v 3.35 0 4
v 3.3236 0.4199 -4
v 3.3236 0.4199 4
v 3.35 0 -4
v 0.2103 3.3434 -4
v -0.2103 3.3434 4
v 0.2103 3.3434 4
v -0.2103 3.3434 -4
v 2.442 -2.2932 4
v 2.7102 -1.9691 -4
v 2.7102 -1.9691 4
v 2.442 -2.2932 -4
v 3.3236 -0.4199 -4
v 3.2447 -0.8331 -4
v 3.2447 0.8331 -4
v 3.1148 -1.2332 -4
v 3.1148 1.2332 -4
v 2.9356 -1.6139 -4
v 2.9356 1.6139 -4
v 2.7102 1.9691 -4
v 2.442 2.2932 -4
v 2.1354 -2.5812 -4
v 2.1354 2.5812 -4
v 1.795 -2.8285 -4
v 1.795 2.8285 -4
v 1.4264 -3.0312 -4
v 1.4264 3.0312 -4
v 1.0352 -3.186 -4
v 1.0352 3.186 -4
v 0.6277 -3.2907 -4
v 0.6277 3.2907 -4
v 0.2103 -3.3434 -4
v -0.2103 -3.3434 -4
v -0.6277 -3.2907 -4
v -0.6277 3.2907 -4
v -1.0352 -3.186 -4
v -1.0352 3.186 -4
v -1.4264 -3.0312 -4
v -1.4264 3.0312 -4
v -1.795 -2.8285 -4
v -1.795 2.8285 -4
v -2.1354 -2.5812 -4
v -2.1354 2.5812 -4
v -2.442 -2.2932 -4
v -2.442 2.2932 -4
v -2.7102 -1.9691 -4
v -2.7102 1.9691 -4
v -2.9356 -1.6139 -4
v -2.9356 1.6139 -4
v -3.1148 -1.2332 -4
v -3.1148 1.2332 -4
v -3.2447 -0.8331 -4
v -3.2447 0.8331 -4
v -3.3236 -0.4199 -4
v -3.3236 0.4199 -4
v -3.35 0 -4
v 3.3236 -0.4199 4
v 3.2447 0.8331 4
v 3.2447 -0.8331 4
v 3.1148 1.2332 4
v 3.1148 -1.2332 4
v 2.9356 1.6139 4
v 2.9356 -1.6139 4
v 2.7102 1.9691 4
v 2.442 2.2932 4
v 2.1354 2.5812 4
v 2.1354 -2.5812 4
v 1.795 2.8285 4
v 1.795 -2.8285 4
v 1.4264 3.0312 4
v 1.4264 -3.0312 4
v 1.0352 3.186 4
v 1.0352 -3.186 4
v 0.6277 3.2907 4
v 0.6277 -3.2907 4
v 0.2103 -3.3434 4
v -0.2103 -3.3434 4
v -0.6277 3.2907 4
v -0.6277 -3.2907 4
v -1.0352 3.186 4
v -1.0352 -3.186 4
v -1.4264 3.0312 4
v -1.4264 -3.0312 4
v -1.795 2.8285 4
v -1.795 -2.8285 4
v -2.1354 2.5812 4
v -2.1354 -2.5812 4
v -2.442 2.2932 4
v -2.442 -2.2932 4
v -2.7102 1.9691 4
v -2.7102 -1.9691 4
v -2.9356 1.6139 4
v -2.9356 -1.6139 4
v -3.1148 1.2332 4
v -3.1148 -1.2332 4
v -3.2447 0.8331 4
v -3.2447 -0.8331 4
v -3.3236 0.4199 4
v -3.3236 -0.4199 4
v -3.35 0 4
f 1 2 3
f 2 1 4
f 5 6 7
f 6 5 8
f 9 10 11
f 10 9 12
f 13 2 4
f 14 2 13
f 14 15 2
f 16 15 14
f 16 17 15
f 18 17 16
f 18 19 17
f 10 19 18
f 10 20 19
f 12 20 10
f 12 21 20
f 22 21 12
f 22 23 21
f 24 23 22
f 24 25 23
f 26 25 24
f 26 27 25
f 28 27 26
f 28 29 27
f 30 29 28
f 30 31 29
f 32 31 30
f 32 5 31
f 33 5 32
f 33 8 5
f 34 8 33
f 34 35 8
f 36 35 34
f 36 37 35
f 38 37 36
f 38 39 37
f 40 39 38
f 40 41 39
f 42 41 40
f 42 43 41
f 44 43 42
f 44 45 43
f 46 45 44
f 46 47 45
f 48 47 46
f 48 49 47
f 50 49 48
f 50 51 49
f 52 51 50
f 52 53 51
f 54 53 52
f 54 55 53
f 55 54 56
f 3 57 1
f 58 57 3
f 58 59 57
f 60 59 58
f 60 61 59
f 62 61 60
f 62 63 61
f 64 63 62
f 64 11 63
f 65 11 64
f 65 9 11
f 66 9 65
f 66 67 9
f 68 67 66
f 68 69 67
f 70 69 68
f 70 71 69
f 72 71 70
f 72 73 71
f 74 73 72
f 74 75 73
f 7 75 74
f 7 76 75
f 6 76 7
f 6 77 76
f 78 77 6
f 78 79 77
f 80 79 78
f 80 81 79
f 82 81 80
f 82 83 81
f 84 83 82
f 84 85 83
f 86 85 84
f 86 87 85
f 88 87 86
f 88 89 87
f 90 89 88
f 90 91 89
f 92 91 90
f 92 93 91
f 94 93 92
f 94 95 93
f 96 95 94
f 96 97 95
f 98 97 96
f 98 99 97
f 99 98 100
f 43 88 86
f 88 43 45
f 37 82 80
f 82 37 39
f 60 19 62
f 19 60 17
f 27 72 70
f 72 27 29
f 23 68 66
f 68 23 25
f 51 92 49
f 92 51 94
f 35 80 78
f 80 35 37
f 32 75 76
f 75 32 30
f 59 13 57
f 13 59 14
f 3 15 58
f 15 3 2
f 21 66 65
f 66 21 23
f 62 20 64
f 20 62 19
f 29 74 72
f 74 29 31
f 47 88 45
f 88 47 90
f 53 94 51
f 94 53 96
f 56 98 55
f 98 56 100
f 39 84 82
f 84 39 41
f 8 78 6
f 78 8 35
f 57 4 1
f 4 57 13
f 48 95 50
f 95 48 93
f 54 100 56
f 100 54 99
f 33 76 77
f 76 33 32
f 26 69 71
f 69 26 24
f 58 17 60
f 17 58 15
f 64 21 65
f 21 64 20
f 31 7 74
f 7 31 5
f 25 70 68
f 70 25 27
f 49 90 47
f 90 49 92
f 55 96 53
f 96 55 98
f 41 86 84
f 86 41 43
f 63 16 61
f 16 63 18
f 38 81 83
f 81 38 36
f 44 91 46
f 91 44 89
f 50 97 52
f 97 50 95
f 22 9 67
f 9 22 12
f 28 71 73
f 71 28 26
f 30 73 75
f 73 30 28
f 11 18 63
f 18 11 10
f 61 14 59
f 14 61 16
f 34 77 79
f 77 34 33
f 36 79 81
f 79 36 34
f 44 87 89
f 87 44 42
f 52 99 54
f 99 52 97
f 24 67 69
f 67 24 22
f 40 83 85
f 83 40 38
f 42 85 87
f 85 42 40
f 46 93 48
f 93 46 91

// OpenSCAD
$fn = 50;


difference() {
	union() {
		translate(v = [0, 0, -4.0000000000]) {
			cylinder(h = 8, r = 3.3500000000);
		}
	}
	union() {
		translate(v = [0, 0, -100.0000000000]) {
			cylinder(h = 200, r = 0);
		}
	}
}
